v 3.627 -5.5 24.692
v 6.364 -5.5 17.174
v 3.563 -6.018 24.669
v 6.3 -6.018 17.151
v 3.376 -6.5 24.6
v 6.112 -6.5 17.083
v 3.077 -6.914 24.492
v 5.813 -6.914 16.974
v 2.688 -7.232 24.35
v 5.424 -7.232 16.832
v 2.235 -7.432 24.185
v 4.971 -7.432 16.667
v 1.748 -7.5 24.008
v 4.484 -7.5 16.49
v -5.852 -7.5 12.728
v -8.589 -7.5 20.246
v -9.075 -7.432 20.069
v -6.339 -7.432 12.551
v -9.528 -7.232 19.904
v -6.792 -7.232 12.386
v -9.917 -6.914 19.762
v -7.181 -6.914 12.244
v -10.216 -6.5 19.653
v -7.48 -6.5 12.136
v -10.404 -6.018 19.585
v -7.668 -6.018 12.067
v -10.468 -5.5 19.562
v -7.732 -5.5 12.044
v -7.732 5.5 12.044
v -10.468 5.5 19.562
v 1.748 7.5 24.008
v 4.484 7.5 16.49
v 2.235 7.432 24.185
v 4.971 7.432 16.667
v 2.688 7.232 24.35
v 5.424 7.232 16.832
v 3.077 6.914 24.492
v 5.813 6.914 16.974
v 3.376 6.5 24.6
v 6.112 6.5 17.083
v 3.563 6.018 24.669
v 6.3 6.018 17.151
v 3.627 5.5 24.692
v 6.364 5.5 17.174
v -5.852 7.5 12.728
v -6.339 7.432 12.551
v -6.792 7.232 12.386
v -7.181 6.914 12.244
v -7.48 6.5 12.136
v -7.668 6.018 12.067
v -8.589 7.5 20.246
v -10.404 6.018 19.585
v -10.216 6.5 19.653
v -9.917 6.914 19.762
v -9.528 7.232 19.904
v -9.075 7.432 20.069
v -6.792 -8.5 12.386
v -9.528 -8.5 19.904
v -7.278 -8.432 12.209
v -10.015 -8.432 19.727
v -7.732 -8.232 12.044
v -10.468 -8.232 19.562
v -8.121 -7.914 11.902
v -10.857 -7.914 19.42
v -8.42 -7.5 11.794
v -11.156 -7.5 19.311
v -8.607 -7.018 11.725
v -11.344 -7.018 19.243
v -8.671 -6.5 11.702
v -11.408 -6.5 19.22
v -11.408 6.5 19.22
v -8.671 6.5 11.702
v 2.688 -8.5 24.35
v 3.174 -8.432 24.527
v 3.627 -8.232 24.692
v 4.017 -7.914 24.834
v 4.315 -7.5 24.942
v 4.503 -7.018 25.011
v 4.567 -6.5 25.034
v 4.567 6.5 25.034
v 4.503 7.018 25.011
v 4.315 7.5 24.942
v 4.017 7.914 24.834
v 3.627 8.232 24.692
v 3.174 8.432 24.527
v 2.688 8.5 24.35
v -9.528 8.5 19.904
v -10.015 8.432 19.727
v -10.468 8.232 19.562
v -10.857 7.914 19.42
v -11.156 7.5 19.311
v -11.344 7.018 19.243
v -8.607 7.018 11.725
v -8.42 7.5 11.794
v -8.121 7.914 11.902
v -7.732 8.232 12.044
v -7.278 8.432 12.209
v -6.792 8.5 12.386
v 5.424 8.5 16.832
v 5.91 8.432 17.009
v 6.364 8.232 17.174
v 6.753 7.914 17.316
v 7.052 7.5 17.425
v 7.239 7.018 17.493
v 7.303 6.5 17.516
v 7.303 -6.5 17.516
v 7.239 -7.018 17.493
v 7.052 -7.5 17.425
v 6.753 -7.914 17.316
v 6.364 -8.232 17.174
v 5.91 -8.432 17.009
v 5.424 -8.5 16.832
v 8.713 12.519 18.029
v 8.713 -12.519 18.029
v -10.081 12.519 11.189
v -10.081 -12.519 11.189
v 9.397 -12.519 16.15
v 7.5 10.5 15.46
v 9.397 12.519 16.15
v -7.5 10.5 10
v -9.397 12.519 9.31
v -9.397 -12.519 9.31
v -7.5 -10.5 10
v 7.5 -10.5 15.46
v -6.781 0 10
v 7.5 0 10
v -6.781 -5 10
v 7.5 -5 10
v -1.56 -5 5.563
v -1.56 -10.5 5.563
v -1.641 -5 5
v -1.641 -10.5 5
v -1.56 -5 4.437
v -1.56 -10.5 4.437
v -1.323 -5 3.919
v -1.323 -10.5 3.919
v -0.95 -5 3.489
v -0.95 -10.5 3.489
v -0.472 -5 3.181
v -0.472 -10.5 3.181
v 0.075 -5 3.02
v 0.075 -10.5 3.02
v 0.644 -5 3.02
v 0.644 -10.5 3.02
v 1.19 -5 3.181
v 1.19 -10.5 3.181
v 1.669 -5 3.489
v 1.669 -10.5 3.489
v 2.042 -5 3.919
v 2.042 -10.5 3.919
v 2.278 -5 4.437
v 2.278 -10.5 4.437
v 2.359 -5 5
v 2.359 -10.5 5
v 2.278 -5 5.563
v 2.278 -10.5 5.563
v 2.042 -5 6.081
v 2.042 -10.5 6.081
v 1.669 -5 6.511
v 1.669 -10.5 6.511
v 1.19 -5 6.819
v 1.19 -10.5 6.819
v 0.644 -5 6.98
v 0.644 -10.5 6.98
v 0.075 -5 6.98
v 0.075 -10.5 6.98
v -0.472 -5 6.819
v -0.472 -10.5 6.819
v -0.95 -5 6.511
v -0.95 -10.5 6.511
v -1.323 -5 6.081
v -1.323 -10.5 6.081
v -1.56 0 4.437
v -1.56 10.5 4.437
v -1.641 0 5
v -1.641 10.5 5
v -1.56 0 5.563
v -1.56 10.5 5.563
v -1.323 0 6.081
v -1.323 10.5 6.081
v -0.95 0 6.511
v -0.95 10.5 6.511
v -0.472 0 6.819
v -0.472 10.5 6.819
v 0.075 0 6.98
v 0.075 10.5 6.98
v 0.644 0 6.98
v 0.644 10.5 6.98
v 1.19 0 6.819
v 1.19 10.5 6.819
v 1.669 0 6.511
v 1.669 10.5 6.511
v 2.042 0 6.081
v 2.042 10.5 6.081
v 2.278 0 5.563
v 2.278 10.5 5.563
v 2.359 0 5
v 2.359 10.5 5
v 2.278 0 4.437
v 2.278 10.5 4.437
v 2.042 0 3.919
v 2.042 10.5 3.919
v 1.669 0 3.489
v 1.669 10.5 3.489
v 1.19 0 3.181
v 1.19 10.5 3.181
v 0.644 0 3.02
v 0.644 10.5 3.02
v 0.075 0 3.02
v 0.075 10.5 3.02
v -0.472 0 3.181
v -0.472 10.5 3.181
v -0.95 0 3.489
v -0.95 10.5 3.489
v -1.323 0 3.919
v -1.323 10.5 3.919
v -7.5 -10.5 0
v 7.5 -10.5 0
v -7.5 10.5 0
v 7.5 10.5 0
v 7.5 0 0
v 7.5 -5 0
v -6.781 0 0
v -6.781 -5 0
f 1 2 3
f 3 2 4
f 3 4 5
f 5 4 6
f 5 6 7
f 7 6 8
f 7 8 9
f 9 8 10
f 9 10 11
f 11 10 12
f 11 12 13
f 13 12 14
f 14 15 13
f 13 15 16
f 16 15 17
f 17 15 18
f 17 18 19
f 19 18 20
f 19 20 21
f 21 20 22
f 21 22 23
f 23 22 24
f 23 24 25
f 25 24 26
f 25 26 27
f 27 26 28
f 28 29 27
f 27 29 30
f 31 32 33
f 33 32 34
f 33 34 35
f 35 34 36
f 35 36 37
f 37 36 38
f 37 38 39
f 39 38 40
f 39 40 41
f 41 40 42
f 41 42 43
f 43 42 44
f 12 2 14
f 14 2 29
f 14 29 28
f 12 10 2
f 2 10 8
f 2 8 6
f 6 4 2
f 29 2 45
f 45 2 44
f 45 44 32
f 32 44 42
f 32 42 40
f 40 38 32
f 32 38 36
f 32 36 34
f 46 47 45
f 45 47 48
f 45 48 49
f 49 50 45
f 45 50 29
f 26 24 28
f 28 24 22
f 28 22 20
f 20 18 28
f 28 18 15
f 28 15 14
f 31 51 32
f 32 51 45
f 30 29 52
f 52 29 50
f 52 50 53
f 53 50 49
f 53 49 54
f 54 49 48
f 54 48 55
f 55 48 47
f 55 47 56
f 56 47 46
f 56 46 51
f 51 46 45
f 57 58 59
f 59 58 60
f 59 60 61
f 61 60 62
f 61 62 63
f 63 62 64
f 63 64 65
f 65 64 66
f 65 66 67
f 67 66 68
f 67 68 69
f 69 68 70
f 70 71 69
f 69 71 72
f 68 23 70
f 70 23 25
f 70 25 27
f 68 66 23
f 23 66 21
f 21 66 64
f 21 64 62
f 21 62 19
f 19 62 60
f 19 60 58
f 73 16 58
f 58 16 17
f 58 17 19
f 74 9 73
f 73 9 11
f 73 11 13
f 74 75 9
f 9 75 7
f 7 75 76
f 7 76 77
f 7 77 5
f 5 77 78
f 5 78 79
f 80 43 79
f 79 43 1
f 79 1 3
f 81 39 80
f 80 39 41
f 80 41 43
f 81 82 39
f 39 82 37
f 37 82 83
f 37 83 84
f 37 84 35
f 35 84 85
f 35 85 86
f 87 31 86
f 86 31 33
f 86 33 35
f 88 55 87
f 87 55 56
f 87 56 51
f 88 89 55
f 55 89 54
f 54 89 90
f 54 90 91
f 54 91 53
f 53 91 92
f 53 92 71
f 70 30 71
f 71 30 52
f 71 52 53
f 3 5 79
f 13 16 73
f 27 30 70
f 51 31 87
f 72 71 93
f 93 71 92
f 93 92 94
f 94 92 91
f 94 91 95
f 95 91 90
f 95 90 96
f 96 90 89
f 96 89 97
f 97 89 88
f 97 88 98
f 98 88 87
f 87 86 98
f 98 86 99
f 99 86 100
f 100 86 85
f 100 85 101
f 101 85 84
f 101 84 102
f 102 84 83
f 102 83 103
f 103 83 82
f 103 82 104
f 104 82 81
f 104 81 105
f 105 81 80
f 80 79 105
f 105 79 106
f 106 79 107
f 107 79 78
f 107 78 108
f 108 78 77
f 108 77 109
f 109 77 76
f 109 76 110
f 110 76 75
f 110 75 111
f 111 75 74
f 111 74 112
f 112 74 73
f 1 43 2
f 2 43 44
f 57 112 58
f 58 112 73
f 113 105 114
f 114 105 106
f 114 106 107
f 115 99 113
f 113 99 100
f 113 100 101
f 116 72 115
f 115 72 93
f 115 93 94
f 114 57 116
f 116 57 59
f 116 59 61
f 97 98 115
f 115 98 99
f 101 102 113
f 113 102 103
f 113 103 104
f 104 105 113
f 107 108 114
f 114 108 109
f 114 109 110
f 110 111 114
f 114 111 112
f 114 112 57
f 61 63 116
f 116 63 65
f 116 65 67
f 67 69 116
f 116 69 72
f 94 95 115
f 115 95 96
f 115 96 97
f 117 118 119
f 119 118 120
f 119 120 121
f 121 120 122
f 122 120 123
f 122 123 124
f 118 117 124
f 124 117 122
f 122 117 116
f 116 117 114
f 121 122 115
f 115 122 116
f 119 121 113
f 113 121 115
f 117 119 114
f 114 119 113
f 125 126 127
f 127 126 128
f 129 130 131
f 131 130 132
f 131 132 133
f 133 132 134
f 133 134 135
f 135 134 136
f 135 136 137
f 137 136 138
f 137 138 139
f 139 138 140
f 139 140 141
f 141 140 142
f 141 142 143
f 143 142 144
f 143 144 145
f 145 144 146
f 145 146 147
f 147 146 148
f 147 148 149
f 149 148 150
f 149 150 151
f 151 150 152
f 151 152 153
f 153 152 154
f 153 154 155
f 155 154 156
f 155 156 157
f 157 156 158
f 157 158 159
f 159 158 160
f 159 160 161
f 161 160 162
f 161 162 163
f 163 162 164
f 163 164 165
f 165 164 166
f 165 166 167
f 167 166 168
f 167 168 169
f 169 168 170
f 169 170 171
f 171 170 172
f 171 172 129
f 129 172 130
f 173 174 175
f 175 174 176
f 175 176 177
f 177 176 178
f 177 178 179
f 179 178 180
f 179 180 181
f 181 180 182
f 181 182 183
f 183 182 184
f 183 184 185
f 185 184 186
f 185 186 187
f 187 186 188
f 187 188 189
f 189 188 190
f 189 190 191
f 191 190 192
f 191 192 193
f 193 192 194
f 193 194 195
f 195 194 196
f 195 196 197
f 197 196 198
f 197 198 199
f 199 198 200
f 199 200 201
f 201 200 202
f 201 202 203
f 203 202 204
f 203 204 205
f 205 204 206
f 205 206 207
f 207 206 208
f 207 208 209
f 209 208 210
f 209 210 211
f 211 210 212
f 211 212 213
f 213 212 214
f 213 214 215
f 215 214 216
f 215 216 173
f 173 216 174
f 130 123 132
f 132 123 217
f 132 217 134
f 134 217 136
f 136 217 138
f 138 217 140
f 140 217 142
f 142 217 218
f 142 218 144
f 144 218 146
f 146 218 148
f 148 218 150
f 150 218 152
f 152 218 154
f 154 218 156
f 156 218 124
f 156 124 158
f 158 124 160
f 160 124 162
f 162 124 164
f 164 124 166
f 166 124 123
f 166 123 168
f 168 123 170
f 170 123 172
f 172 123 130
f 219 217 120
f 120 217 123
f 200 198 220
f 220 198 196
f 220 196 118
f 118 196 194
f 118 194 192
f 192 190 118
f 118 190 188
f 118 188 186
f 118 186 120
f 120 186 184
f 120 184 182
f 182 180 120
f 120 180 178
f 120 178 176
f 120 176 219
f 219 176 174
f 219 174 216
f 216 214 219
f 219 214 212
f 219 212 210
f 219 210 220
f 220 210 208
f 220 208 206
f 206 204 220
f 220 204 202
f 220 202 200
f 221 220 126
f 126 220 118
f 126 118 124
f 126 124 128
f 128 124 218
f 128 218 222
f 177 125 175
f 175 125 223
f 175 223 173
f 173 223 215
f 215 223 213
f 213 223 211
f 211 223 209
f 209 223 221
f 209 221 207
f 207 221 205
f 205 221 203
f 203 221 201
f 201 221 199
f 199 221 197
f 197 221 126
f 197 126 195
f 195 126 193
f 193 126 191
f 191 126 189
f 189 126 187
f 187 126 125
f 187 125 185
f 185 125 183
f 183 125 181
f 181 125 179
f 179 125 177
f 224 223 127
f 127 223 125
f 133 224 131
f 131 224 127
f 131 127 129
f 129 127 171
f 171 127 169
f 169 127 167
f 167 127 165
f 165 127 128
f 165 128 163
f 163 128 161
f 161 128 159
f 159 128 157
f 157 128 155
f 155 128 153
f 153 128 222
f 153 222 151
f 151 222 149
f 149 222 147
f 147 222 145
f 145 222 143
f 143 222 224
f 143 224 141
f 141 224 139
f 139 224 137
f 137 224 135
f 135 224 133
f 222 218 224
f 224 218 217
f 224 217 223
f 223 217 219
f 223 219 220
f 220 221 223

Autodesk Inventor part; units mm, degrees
ref_plane "YZ Plane" through (0, 0, 0) normal (1, 0, 0) x (0, 1, 0)
ref_plane "XZ Plane" through (0, 0, 0) normal (0, 1, 0) x (-1, 0, 0)
ref_plane "XY Plane" through (0, 0, 0) normal (0, 0, 1) x (1, 0, 0)
sketch "Эскиз1" plane through (0, 0, 0) normal (0, 0, 1) x (1, 0, 0)
  line L0 (7.5, -5) -> (7.5, 0) projected
  line L1 (5.0577, -5) -> (7.5, -5) projected
  line L2 (5.0577, -5) -> (-4.3392, -5) projected
  line L3 (-6.7815, -5) -> (-4.3392, -5) projected
  line L4 (-6.7815, -5) -> (-6.7815, 0) projected
  line L5 (-6.7815, 0) -> (-4.3392, 0) projected
  line L6 (5.0577, 0) -> (-4.3392, 0) projected
  line L7 (5.0577, 0) -> (7.5, 0) projected
  line L8 (7.5, -10.5) -> (-7.5, -10.5) projected
  line L9 (7.5, 0) -> (-6.7815, 0) projected
  line L10 (7.5, 10.5) -> (7.5, 0) projected
  line L11 (-7.5, 10.5) -> (7.5, 10.5) projected
  line L12 (-7.5, -10.5) -> (-7.5, 10.5) projected
  line L13 (7.5, -10.5) -> (-7.5, -10.5) projected
  line L14 (7.5, -5) -> (7.5, -10.5) projected
  line L15 (7.5, -5) -> (-6.7815, -5) projected
  line L16 (-6.7815, -5) -> (-6.7815, 0) projected
  point P0 (0, 0)
extrude "Выдавливание1" add sketch "Эскиз1" along normal blind 10 contours L14 L8 L12 L11 L10 L7 L6 L5 L4 L3 L2 L1
sketch "Эскиз2" plane through (-7.5, 10.5, 0) normal (0, 1, 0) x (1, 0, 0)
  circle A0 centre (7.8593, -5) radius 2 projected
  point P0 (7.5, 0)
extrude "Выдавливание2" cut sketch "Эскиз2" against normal through all
sketch "Эскиз3" plane through (-7.5, 10.5, 0) normal (0, 1, 0) x (1, 0, 0)
  line L0 (15, -10) -> (0, -10) projected
  line L1 (15, -10) -> (15, -15.4596)
  line L2 (15, -15.4596) -> (0, -10)
  point P0 (7.5, 0)
  dimension "d5" = 20
extrude "Выдавливание3" add sketch "Эскиз3" against normal up to surface (21 mm away)
sketch "Эскиз4" plane through (7.5, -10.5, 15.4596) normal (-0.3420201, 0, 0.9396926) x (0.9396926, 0, 0.3420201)
  line L0 (-15.9627, 0) -> (0, 0) projected
  line L1 (0, 21) -> (0, 0) projected
  line L2 (-15.9627, 21) -> (0, 21) projected
  line L3 (-15.9627, 21) -> (-15.9627, 0) projected
  line L4 (-17.9813, -2.0187) -> (2.0187, -2.0187)
  line L5 (2.0187, -2.0187) -> (2.0187, 23.0187)
  line L6 (2.0187, 23.0187) -> (-17.9813, 23.0187)
  line L7 (-17.9813, 23.0187) -> (-17.9813, -2.0187)
  point P0 (-12.3352, 10.5)
  dimension "d8" = 20
extrude "Выдавливание4" add sketch "Эскиз4" along normal blind 2 contours L3 L2 L1 L0 | L7 L6 L5 L4
sketch "Эскиз5" plane through (6.816, -10.5, 17.3389) normal (-0.3420201, 0, 0.9396926) x (0.9396926, 0, 0.3420201)
  line L0 (0.5187, 19) -> (-16.4813, 19)
  line L1 (-16.4813, 19) -> (-16.4813, 2)
  line L2 (-16.4813, 2) -> (0.5187, 2)
  line L3 (0.5187, 2) -> (0.5187, 19)
  line L4 (2.0187, -2.0187) -> (2.0187, 23.0187) projected
  line L5 (-17.9813, -2.0187) -> (2.0187, -2.0187) projected
  line L6 (-0.4813, 18) -> (-15.4813, 18)
  line L7 (-15.4813, 18) -> (-15.4813, 3)
  line L8 (-15.4813, 3) -> (-0.4813, 3)
  line L9 (-0.4813, 3) -> (-0.4813, 18)
  point P0 (-12.3352, 10.5)
  point P1 (0.5187, 10.5)
  point P2 (2.0187, 10.5)
  point P3 (-7.9813, 2)
  point P4 (-7.9813, -2.0187)
  dimension "d11" = 17
  dimension "d12" = 1
extrude "Выдавливание5" add sketch "Эскиз5" along normal blind 8
fillet "Сопряжение1" radius 2 8 edges at (5.9353, -8.5, 21.2751) (5.9353, 8.5, 21.2751) (-10.0395, 8.5, 15.4608) (-10.0395, -8.5, 15.4608) (-9.0998, 7.5, 15.8028) (4.9956, 7.5, 20.9331) (-9.0998, -7.5, 15.8028) (4.9956, -7.5, 20.9331)
equation "\"degg\" = 70deg"
properties part number "base_70"
